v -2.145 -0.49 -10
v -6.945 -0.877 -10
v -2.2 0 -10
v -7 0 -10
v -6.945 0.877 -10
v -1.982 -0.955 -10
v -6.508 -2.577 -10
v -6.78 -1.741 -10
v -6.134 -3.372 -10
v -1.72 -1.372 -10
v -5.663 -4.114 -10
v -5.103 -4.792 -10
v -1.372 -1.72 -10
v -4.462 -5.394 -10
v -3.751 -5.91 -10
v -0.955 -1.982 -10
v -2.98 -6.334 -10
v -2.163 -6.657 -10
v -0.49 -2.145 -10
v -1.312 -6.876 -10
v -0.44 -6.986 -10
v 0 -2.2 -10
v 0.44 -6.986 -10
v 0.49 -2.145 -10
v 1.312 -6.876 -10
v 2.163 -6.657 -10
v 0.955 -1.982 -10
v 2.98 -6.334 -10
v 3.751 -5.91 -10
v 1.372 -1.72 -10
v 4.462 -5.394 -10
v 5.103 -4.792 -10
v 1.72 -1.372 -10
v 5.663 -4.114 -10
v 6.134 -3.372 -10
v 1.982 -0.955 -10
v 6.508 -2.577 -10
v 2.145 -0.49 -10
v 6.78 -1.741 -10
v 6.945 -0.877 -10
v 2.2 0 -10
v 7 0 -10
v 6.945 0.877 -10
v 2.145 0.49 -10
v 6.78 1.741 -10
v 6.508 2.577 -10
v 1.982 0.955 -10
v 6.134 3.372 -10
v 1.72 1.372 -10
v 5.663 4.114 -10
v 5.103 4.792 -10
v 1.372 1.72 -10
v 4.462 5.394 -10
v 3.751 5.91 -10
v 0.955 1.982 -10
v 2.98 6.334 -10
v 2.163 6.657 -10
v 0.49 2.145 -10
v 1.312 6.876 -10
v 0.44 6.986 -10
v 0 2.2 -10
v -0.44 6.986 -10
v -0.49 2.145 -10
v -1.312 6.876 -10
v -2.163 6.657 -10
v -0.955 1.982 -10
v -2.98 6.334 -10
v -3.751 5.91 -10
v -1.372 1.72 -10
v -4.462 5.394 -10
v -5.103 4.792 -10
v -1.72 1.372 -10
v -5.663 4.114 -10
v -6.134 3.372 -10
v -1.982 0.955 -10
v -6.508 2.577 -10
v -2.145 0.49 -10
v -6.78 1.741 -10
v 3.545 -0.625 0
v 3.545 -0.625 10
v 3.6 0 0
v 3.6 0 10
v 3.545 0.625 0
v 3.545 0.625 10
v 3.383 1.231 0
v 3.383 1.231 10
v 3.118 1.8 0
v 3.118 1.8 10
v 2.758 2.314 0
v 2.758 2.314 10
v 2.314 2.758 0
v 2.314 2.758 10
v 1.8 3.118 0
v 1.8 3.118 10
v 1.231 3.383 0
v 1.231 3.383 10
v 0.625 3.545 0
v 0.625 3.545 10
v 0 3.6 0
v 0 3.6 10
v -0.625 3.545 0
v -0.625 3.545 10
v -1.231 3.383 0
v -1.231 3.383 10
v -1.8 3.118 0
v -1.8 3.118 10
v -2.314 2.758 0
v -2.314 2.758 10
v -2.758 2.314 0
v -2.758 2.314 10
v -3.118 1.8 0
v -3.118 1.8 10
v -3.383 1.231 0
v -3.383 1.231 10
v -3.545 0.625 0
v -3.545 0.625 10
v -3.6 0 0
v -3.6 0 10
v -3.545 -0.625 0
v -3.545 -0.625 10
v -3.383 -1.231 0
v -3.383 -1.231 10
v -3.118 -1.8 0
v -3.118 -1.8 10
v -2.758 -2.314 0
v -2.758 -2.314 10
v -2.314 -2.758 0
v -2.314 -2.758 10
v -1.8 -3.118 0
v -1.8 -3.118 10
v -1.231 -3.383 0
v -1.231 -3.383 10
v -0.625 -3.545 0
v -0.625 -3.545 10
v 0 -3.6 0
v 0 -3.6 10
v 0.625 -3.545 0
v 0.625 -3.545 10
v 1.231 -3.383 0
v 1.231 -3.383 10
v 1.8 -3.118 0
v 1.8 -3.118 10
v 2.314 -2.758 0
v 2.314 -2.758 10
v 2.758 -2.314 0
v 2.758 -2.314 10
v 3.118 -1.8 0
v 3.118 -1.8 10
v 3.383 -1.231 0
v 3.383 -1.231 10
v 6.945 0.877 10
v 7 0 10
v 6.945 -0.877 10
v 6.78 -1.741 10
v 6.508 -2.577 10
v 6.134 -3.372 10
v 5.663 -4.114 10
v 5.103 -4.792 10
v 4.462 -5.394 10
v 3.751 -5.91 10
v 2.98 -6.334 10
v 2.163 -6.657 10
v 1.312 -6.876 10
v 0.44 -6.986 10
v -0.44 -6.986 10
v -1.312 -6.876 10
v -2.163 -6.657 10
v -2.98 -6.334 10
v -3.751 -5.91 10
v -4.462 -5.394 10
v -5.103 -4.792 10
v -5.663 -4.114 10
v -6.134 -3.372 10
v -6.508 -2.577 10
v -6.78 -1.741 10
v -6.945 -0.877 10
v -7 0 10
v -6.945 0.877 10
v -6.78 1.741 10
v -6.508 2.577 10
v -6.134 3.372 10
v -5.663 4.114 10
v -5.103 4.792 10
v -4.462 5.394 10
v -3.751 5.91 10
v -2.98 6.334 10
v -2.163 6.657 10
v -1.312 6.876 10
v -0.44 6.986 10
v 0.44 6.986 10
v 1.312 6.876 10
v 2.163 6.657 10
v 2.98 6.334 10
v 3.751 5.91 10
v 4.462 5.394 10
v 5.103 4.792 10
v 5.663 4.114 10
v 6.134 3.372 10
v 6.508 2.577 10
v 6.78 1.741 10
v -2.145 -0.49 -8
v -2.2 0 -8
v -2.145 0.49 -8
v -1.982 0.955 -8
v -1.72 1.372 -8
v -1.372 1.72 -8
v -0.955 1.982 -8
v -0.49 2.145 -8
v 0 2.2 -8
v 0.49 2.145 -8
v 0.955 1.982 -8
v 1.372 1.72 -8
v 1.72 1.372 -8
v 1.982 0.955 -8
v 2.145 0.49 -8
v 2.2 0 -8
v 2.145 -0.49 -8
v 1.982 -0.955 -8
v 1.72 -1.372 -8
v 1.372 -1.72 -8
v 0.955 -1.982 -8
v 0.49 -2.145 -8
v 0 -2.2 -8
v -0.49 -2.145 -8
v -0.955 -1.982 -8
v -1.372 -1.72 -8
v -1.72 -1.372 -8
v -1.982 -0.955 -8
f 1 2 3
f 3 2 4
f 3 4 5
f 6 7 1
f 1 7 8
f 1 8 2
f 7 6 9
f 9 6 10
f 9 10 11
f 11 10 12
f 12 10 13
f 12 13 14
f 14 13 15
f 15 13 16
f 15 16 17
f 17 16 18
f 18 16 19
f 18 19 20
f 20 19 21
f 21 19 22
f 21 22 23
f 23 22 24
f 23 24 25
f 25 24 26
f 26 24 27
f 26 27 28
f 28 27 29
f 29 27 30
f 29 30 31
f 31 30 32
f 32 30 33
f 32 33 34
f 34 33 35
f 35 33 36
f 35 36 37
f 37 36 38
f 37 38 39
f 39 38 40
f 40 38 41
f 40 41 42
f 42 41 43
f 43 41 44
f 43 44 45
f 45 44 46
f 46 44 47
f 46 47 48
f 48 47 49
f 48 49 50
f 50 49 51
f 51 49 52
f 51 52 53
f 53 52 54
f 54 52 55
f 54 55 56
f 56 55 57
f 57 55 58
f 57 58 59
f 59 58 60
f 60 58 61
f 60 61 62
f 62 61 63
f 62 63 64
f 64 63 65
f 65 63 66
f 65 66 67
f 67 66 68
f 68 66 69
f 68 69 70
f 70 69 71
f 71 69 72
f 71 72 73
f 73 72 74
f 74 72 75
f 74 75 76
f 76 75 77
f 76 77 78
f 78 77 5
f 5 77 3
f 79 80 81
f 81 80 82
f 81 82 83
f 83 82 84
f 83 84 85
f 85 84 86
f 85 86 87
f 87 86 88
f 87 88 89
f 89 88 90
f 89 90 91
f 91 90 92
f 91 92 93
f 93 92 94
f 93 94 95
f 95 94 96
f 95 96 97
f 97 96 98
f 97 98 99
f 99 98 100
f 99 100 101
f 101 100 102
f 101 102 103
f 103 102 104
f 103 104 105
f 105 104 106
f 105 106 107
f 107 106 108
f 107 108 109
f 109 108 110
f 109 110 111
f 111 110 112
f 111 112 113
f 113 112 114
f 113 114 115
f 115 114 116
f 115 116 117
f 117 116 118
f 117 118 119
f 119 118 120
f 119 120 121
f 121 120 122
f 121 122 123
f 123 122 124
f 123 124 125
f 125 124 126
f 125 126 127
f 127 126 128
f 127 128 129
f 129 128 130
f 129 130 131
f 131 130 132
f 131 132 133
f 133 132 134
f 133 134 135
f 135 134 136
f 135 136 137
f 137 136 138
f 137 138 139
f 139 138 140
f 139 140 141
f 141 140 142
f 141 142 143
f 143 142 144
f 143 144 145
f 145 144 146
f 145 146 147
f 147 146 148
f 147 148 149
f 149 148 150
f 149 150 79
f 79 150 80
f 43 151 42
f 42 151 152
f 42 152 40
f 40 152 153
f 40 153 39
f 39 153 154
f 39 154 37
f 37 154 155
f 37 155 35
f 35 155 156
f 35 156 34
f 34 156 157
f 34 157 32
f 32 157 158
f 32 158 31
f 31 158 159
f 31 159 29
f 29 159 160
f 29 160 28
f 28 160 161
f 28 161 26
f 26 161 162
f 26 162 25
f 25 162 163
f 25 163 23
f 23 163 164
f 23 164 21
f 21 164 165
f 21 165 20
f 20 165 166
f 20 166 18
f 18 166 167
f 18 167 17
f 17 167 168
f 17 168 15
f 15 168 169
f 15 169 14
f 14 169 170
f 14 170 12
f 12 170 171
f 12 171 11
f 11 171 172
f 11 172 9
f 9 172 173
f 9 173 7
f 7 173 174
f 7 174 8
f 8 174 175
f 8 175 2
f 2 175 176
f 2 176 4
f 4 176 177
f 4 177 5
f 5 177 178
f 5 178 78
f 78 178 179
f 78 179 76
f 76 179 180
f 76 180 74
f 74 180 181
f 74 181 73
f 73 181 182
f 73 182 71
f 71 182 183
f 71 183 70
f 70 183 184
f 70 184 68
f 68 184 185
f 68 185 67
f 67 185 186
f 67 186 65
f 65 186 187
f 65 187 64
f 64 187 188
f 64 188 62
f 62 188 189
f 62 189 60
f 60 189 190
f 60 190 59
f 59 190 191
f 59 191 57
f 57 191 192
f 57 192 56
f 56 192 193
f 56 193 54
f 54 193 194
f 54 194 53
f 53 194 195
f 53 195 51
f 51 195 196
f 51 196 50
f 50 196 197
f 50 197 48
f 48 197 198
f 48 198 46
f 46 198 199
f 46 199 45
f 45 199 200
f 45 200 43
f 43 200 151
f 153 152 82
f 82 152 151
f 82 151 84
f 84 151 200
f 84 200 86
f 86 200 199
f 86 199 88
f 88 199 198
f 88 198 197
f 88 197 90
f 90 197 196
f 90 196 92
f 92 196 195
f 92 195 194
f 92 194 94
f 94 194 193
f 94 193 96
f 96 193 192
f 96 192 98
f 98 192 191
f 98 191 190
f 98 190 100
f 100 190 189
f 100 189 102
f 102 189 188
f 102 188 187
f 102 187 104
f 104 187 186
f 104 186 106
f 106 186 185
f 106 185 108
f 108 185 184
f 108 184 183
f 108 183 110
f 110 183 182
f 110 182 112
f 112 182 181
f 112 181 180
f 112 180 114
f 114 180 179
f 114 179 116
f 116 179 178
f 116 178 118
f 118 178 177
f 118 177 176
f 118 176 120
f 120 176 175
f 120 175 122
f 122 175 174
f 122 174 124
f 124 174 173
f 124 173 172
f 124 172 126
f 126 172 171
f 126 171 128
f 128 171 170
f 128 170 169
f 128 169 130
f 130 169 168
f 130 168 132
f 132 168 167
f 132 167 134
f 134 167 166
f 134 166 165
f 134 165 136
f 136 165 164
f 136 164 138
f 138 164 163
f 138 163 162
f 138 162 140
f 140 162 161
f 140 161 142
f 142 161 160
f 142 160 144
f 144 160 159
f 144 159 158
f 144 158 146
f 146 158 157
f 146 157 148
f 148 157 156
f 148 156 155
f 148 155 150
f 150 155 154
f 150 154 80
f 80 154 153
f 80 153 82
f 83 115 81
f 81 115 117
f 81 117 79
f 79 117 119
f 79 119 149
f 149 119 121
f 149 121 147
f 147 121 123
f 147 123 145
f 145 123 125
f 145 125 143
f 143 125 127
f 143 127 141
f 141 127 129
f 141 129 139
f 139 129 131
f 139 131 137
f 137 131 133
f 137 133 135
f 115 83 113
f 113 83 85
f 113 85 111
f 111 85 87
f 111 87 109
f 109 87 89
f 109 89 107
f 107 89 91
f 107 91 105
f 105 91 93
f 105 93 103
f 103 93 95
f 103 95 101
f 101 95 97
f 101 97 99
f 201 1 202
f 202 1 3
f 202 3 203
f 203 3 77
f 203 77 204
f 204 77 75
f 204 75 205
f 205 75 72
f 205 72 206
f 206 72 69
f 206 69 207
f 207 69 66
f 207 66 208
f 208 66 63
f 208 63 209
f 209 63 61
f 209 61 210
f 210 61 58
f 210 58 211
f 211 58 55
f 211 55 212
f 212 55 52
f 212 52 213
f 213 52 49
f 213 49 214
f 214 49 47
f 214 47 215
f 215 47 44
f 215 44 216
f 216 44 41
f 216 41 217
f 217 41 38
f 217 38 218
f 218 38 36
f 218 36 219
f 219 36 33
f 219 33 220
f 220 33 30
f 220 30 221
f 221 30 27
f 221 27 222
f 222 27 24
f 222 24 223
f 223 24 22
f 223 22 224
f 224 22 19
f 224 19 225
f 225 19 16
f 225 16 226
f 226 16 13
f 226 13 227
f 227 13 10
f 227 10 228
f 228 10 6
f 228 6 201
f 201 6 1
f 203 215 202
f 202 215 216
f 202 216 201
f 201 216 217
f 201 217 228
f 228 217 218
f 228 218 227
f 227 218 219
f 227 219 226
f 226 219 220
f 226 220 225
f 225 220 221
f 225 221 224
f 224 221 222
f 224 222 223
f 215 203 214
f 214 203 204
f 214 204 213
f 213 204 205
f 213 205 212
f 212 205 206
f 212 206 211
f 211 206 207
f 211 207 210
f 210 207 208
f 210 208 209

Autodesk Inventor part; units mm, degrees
ref_plane "YZ Plane" through (0, 0, 0) normal (1, 0, 0) x (0, 1, 0)
ref_plane "XZ Plane" through (0, 0, 0) normal (0, 1, 0) x (-1, 0, 0)
ref_plane "XY Plane" through (0, 0, 0) normal (0, 0, 1) x (1, 0, 0)
sketch "Sketch1" plane through (0, 0, 0) normal (0, 0, 1) x (1, 0, 0)
  circle A0 centre (0, 0) radius 3.6
  circle A1 centre (0, 0) radius 7
  dimension "d0" = 7.2
  dimension "d1" = 14
extrude "Extrusion1" add sketch "Sketch1" along normal mid plane 20
extrude "Extrusion2" add sketch "Sketch1" against normal blind 10 contours A0
sketch "Sketch2" plane through (0, 0, -10) normal (0, 0, -1) x (-1, 0, 0)
  circle A0 centre (0, 0) radius 2.2
  dimension "d6" = 4.4
extrude "Extrusion3" cut sketch "Sketch2" against normal blind 2
properties part number "Magnet Coupler"
